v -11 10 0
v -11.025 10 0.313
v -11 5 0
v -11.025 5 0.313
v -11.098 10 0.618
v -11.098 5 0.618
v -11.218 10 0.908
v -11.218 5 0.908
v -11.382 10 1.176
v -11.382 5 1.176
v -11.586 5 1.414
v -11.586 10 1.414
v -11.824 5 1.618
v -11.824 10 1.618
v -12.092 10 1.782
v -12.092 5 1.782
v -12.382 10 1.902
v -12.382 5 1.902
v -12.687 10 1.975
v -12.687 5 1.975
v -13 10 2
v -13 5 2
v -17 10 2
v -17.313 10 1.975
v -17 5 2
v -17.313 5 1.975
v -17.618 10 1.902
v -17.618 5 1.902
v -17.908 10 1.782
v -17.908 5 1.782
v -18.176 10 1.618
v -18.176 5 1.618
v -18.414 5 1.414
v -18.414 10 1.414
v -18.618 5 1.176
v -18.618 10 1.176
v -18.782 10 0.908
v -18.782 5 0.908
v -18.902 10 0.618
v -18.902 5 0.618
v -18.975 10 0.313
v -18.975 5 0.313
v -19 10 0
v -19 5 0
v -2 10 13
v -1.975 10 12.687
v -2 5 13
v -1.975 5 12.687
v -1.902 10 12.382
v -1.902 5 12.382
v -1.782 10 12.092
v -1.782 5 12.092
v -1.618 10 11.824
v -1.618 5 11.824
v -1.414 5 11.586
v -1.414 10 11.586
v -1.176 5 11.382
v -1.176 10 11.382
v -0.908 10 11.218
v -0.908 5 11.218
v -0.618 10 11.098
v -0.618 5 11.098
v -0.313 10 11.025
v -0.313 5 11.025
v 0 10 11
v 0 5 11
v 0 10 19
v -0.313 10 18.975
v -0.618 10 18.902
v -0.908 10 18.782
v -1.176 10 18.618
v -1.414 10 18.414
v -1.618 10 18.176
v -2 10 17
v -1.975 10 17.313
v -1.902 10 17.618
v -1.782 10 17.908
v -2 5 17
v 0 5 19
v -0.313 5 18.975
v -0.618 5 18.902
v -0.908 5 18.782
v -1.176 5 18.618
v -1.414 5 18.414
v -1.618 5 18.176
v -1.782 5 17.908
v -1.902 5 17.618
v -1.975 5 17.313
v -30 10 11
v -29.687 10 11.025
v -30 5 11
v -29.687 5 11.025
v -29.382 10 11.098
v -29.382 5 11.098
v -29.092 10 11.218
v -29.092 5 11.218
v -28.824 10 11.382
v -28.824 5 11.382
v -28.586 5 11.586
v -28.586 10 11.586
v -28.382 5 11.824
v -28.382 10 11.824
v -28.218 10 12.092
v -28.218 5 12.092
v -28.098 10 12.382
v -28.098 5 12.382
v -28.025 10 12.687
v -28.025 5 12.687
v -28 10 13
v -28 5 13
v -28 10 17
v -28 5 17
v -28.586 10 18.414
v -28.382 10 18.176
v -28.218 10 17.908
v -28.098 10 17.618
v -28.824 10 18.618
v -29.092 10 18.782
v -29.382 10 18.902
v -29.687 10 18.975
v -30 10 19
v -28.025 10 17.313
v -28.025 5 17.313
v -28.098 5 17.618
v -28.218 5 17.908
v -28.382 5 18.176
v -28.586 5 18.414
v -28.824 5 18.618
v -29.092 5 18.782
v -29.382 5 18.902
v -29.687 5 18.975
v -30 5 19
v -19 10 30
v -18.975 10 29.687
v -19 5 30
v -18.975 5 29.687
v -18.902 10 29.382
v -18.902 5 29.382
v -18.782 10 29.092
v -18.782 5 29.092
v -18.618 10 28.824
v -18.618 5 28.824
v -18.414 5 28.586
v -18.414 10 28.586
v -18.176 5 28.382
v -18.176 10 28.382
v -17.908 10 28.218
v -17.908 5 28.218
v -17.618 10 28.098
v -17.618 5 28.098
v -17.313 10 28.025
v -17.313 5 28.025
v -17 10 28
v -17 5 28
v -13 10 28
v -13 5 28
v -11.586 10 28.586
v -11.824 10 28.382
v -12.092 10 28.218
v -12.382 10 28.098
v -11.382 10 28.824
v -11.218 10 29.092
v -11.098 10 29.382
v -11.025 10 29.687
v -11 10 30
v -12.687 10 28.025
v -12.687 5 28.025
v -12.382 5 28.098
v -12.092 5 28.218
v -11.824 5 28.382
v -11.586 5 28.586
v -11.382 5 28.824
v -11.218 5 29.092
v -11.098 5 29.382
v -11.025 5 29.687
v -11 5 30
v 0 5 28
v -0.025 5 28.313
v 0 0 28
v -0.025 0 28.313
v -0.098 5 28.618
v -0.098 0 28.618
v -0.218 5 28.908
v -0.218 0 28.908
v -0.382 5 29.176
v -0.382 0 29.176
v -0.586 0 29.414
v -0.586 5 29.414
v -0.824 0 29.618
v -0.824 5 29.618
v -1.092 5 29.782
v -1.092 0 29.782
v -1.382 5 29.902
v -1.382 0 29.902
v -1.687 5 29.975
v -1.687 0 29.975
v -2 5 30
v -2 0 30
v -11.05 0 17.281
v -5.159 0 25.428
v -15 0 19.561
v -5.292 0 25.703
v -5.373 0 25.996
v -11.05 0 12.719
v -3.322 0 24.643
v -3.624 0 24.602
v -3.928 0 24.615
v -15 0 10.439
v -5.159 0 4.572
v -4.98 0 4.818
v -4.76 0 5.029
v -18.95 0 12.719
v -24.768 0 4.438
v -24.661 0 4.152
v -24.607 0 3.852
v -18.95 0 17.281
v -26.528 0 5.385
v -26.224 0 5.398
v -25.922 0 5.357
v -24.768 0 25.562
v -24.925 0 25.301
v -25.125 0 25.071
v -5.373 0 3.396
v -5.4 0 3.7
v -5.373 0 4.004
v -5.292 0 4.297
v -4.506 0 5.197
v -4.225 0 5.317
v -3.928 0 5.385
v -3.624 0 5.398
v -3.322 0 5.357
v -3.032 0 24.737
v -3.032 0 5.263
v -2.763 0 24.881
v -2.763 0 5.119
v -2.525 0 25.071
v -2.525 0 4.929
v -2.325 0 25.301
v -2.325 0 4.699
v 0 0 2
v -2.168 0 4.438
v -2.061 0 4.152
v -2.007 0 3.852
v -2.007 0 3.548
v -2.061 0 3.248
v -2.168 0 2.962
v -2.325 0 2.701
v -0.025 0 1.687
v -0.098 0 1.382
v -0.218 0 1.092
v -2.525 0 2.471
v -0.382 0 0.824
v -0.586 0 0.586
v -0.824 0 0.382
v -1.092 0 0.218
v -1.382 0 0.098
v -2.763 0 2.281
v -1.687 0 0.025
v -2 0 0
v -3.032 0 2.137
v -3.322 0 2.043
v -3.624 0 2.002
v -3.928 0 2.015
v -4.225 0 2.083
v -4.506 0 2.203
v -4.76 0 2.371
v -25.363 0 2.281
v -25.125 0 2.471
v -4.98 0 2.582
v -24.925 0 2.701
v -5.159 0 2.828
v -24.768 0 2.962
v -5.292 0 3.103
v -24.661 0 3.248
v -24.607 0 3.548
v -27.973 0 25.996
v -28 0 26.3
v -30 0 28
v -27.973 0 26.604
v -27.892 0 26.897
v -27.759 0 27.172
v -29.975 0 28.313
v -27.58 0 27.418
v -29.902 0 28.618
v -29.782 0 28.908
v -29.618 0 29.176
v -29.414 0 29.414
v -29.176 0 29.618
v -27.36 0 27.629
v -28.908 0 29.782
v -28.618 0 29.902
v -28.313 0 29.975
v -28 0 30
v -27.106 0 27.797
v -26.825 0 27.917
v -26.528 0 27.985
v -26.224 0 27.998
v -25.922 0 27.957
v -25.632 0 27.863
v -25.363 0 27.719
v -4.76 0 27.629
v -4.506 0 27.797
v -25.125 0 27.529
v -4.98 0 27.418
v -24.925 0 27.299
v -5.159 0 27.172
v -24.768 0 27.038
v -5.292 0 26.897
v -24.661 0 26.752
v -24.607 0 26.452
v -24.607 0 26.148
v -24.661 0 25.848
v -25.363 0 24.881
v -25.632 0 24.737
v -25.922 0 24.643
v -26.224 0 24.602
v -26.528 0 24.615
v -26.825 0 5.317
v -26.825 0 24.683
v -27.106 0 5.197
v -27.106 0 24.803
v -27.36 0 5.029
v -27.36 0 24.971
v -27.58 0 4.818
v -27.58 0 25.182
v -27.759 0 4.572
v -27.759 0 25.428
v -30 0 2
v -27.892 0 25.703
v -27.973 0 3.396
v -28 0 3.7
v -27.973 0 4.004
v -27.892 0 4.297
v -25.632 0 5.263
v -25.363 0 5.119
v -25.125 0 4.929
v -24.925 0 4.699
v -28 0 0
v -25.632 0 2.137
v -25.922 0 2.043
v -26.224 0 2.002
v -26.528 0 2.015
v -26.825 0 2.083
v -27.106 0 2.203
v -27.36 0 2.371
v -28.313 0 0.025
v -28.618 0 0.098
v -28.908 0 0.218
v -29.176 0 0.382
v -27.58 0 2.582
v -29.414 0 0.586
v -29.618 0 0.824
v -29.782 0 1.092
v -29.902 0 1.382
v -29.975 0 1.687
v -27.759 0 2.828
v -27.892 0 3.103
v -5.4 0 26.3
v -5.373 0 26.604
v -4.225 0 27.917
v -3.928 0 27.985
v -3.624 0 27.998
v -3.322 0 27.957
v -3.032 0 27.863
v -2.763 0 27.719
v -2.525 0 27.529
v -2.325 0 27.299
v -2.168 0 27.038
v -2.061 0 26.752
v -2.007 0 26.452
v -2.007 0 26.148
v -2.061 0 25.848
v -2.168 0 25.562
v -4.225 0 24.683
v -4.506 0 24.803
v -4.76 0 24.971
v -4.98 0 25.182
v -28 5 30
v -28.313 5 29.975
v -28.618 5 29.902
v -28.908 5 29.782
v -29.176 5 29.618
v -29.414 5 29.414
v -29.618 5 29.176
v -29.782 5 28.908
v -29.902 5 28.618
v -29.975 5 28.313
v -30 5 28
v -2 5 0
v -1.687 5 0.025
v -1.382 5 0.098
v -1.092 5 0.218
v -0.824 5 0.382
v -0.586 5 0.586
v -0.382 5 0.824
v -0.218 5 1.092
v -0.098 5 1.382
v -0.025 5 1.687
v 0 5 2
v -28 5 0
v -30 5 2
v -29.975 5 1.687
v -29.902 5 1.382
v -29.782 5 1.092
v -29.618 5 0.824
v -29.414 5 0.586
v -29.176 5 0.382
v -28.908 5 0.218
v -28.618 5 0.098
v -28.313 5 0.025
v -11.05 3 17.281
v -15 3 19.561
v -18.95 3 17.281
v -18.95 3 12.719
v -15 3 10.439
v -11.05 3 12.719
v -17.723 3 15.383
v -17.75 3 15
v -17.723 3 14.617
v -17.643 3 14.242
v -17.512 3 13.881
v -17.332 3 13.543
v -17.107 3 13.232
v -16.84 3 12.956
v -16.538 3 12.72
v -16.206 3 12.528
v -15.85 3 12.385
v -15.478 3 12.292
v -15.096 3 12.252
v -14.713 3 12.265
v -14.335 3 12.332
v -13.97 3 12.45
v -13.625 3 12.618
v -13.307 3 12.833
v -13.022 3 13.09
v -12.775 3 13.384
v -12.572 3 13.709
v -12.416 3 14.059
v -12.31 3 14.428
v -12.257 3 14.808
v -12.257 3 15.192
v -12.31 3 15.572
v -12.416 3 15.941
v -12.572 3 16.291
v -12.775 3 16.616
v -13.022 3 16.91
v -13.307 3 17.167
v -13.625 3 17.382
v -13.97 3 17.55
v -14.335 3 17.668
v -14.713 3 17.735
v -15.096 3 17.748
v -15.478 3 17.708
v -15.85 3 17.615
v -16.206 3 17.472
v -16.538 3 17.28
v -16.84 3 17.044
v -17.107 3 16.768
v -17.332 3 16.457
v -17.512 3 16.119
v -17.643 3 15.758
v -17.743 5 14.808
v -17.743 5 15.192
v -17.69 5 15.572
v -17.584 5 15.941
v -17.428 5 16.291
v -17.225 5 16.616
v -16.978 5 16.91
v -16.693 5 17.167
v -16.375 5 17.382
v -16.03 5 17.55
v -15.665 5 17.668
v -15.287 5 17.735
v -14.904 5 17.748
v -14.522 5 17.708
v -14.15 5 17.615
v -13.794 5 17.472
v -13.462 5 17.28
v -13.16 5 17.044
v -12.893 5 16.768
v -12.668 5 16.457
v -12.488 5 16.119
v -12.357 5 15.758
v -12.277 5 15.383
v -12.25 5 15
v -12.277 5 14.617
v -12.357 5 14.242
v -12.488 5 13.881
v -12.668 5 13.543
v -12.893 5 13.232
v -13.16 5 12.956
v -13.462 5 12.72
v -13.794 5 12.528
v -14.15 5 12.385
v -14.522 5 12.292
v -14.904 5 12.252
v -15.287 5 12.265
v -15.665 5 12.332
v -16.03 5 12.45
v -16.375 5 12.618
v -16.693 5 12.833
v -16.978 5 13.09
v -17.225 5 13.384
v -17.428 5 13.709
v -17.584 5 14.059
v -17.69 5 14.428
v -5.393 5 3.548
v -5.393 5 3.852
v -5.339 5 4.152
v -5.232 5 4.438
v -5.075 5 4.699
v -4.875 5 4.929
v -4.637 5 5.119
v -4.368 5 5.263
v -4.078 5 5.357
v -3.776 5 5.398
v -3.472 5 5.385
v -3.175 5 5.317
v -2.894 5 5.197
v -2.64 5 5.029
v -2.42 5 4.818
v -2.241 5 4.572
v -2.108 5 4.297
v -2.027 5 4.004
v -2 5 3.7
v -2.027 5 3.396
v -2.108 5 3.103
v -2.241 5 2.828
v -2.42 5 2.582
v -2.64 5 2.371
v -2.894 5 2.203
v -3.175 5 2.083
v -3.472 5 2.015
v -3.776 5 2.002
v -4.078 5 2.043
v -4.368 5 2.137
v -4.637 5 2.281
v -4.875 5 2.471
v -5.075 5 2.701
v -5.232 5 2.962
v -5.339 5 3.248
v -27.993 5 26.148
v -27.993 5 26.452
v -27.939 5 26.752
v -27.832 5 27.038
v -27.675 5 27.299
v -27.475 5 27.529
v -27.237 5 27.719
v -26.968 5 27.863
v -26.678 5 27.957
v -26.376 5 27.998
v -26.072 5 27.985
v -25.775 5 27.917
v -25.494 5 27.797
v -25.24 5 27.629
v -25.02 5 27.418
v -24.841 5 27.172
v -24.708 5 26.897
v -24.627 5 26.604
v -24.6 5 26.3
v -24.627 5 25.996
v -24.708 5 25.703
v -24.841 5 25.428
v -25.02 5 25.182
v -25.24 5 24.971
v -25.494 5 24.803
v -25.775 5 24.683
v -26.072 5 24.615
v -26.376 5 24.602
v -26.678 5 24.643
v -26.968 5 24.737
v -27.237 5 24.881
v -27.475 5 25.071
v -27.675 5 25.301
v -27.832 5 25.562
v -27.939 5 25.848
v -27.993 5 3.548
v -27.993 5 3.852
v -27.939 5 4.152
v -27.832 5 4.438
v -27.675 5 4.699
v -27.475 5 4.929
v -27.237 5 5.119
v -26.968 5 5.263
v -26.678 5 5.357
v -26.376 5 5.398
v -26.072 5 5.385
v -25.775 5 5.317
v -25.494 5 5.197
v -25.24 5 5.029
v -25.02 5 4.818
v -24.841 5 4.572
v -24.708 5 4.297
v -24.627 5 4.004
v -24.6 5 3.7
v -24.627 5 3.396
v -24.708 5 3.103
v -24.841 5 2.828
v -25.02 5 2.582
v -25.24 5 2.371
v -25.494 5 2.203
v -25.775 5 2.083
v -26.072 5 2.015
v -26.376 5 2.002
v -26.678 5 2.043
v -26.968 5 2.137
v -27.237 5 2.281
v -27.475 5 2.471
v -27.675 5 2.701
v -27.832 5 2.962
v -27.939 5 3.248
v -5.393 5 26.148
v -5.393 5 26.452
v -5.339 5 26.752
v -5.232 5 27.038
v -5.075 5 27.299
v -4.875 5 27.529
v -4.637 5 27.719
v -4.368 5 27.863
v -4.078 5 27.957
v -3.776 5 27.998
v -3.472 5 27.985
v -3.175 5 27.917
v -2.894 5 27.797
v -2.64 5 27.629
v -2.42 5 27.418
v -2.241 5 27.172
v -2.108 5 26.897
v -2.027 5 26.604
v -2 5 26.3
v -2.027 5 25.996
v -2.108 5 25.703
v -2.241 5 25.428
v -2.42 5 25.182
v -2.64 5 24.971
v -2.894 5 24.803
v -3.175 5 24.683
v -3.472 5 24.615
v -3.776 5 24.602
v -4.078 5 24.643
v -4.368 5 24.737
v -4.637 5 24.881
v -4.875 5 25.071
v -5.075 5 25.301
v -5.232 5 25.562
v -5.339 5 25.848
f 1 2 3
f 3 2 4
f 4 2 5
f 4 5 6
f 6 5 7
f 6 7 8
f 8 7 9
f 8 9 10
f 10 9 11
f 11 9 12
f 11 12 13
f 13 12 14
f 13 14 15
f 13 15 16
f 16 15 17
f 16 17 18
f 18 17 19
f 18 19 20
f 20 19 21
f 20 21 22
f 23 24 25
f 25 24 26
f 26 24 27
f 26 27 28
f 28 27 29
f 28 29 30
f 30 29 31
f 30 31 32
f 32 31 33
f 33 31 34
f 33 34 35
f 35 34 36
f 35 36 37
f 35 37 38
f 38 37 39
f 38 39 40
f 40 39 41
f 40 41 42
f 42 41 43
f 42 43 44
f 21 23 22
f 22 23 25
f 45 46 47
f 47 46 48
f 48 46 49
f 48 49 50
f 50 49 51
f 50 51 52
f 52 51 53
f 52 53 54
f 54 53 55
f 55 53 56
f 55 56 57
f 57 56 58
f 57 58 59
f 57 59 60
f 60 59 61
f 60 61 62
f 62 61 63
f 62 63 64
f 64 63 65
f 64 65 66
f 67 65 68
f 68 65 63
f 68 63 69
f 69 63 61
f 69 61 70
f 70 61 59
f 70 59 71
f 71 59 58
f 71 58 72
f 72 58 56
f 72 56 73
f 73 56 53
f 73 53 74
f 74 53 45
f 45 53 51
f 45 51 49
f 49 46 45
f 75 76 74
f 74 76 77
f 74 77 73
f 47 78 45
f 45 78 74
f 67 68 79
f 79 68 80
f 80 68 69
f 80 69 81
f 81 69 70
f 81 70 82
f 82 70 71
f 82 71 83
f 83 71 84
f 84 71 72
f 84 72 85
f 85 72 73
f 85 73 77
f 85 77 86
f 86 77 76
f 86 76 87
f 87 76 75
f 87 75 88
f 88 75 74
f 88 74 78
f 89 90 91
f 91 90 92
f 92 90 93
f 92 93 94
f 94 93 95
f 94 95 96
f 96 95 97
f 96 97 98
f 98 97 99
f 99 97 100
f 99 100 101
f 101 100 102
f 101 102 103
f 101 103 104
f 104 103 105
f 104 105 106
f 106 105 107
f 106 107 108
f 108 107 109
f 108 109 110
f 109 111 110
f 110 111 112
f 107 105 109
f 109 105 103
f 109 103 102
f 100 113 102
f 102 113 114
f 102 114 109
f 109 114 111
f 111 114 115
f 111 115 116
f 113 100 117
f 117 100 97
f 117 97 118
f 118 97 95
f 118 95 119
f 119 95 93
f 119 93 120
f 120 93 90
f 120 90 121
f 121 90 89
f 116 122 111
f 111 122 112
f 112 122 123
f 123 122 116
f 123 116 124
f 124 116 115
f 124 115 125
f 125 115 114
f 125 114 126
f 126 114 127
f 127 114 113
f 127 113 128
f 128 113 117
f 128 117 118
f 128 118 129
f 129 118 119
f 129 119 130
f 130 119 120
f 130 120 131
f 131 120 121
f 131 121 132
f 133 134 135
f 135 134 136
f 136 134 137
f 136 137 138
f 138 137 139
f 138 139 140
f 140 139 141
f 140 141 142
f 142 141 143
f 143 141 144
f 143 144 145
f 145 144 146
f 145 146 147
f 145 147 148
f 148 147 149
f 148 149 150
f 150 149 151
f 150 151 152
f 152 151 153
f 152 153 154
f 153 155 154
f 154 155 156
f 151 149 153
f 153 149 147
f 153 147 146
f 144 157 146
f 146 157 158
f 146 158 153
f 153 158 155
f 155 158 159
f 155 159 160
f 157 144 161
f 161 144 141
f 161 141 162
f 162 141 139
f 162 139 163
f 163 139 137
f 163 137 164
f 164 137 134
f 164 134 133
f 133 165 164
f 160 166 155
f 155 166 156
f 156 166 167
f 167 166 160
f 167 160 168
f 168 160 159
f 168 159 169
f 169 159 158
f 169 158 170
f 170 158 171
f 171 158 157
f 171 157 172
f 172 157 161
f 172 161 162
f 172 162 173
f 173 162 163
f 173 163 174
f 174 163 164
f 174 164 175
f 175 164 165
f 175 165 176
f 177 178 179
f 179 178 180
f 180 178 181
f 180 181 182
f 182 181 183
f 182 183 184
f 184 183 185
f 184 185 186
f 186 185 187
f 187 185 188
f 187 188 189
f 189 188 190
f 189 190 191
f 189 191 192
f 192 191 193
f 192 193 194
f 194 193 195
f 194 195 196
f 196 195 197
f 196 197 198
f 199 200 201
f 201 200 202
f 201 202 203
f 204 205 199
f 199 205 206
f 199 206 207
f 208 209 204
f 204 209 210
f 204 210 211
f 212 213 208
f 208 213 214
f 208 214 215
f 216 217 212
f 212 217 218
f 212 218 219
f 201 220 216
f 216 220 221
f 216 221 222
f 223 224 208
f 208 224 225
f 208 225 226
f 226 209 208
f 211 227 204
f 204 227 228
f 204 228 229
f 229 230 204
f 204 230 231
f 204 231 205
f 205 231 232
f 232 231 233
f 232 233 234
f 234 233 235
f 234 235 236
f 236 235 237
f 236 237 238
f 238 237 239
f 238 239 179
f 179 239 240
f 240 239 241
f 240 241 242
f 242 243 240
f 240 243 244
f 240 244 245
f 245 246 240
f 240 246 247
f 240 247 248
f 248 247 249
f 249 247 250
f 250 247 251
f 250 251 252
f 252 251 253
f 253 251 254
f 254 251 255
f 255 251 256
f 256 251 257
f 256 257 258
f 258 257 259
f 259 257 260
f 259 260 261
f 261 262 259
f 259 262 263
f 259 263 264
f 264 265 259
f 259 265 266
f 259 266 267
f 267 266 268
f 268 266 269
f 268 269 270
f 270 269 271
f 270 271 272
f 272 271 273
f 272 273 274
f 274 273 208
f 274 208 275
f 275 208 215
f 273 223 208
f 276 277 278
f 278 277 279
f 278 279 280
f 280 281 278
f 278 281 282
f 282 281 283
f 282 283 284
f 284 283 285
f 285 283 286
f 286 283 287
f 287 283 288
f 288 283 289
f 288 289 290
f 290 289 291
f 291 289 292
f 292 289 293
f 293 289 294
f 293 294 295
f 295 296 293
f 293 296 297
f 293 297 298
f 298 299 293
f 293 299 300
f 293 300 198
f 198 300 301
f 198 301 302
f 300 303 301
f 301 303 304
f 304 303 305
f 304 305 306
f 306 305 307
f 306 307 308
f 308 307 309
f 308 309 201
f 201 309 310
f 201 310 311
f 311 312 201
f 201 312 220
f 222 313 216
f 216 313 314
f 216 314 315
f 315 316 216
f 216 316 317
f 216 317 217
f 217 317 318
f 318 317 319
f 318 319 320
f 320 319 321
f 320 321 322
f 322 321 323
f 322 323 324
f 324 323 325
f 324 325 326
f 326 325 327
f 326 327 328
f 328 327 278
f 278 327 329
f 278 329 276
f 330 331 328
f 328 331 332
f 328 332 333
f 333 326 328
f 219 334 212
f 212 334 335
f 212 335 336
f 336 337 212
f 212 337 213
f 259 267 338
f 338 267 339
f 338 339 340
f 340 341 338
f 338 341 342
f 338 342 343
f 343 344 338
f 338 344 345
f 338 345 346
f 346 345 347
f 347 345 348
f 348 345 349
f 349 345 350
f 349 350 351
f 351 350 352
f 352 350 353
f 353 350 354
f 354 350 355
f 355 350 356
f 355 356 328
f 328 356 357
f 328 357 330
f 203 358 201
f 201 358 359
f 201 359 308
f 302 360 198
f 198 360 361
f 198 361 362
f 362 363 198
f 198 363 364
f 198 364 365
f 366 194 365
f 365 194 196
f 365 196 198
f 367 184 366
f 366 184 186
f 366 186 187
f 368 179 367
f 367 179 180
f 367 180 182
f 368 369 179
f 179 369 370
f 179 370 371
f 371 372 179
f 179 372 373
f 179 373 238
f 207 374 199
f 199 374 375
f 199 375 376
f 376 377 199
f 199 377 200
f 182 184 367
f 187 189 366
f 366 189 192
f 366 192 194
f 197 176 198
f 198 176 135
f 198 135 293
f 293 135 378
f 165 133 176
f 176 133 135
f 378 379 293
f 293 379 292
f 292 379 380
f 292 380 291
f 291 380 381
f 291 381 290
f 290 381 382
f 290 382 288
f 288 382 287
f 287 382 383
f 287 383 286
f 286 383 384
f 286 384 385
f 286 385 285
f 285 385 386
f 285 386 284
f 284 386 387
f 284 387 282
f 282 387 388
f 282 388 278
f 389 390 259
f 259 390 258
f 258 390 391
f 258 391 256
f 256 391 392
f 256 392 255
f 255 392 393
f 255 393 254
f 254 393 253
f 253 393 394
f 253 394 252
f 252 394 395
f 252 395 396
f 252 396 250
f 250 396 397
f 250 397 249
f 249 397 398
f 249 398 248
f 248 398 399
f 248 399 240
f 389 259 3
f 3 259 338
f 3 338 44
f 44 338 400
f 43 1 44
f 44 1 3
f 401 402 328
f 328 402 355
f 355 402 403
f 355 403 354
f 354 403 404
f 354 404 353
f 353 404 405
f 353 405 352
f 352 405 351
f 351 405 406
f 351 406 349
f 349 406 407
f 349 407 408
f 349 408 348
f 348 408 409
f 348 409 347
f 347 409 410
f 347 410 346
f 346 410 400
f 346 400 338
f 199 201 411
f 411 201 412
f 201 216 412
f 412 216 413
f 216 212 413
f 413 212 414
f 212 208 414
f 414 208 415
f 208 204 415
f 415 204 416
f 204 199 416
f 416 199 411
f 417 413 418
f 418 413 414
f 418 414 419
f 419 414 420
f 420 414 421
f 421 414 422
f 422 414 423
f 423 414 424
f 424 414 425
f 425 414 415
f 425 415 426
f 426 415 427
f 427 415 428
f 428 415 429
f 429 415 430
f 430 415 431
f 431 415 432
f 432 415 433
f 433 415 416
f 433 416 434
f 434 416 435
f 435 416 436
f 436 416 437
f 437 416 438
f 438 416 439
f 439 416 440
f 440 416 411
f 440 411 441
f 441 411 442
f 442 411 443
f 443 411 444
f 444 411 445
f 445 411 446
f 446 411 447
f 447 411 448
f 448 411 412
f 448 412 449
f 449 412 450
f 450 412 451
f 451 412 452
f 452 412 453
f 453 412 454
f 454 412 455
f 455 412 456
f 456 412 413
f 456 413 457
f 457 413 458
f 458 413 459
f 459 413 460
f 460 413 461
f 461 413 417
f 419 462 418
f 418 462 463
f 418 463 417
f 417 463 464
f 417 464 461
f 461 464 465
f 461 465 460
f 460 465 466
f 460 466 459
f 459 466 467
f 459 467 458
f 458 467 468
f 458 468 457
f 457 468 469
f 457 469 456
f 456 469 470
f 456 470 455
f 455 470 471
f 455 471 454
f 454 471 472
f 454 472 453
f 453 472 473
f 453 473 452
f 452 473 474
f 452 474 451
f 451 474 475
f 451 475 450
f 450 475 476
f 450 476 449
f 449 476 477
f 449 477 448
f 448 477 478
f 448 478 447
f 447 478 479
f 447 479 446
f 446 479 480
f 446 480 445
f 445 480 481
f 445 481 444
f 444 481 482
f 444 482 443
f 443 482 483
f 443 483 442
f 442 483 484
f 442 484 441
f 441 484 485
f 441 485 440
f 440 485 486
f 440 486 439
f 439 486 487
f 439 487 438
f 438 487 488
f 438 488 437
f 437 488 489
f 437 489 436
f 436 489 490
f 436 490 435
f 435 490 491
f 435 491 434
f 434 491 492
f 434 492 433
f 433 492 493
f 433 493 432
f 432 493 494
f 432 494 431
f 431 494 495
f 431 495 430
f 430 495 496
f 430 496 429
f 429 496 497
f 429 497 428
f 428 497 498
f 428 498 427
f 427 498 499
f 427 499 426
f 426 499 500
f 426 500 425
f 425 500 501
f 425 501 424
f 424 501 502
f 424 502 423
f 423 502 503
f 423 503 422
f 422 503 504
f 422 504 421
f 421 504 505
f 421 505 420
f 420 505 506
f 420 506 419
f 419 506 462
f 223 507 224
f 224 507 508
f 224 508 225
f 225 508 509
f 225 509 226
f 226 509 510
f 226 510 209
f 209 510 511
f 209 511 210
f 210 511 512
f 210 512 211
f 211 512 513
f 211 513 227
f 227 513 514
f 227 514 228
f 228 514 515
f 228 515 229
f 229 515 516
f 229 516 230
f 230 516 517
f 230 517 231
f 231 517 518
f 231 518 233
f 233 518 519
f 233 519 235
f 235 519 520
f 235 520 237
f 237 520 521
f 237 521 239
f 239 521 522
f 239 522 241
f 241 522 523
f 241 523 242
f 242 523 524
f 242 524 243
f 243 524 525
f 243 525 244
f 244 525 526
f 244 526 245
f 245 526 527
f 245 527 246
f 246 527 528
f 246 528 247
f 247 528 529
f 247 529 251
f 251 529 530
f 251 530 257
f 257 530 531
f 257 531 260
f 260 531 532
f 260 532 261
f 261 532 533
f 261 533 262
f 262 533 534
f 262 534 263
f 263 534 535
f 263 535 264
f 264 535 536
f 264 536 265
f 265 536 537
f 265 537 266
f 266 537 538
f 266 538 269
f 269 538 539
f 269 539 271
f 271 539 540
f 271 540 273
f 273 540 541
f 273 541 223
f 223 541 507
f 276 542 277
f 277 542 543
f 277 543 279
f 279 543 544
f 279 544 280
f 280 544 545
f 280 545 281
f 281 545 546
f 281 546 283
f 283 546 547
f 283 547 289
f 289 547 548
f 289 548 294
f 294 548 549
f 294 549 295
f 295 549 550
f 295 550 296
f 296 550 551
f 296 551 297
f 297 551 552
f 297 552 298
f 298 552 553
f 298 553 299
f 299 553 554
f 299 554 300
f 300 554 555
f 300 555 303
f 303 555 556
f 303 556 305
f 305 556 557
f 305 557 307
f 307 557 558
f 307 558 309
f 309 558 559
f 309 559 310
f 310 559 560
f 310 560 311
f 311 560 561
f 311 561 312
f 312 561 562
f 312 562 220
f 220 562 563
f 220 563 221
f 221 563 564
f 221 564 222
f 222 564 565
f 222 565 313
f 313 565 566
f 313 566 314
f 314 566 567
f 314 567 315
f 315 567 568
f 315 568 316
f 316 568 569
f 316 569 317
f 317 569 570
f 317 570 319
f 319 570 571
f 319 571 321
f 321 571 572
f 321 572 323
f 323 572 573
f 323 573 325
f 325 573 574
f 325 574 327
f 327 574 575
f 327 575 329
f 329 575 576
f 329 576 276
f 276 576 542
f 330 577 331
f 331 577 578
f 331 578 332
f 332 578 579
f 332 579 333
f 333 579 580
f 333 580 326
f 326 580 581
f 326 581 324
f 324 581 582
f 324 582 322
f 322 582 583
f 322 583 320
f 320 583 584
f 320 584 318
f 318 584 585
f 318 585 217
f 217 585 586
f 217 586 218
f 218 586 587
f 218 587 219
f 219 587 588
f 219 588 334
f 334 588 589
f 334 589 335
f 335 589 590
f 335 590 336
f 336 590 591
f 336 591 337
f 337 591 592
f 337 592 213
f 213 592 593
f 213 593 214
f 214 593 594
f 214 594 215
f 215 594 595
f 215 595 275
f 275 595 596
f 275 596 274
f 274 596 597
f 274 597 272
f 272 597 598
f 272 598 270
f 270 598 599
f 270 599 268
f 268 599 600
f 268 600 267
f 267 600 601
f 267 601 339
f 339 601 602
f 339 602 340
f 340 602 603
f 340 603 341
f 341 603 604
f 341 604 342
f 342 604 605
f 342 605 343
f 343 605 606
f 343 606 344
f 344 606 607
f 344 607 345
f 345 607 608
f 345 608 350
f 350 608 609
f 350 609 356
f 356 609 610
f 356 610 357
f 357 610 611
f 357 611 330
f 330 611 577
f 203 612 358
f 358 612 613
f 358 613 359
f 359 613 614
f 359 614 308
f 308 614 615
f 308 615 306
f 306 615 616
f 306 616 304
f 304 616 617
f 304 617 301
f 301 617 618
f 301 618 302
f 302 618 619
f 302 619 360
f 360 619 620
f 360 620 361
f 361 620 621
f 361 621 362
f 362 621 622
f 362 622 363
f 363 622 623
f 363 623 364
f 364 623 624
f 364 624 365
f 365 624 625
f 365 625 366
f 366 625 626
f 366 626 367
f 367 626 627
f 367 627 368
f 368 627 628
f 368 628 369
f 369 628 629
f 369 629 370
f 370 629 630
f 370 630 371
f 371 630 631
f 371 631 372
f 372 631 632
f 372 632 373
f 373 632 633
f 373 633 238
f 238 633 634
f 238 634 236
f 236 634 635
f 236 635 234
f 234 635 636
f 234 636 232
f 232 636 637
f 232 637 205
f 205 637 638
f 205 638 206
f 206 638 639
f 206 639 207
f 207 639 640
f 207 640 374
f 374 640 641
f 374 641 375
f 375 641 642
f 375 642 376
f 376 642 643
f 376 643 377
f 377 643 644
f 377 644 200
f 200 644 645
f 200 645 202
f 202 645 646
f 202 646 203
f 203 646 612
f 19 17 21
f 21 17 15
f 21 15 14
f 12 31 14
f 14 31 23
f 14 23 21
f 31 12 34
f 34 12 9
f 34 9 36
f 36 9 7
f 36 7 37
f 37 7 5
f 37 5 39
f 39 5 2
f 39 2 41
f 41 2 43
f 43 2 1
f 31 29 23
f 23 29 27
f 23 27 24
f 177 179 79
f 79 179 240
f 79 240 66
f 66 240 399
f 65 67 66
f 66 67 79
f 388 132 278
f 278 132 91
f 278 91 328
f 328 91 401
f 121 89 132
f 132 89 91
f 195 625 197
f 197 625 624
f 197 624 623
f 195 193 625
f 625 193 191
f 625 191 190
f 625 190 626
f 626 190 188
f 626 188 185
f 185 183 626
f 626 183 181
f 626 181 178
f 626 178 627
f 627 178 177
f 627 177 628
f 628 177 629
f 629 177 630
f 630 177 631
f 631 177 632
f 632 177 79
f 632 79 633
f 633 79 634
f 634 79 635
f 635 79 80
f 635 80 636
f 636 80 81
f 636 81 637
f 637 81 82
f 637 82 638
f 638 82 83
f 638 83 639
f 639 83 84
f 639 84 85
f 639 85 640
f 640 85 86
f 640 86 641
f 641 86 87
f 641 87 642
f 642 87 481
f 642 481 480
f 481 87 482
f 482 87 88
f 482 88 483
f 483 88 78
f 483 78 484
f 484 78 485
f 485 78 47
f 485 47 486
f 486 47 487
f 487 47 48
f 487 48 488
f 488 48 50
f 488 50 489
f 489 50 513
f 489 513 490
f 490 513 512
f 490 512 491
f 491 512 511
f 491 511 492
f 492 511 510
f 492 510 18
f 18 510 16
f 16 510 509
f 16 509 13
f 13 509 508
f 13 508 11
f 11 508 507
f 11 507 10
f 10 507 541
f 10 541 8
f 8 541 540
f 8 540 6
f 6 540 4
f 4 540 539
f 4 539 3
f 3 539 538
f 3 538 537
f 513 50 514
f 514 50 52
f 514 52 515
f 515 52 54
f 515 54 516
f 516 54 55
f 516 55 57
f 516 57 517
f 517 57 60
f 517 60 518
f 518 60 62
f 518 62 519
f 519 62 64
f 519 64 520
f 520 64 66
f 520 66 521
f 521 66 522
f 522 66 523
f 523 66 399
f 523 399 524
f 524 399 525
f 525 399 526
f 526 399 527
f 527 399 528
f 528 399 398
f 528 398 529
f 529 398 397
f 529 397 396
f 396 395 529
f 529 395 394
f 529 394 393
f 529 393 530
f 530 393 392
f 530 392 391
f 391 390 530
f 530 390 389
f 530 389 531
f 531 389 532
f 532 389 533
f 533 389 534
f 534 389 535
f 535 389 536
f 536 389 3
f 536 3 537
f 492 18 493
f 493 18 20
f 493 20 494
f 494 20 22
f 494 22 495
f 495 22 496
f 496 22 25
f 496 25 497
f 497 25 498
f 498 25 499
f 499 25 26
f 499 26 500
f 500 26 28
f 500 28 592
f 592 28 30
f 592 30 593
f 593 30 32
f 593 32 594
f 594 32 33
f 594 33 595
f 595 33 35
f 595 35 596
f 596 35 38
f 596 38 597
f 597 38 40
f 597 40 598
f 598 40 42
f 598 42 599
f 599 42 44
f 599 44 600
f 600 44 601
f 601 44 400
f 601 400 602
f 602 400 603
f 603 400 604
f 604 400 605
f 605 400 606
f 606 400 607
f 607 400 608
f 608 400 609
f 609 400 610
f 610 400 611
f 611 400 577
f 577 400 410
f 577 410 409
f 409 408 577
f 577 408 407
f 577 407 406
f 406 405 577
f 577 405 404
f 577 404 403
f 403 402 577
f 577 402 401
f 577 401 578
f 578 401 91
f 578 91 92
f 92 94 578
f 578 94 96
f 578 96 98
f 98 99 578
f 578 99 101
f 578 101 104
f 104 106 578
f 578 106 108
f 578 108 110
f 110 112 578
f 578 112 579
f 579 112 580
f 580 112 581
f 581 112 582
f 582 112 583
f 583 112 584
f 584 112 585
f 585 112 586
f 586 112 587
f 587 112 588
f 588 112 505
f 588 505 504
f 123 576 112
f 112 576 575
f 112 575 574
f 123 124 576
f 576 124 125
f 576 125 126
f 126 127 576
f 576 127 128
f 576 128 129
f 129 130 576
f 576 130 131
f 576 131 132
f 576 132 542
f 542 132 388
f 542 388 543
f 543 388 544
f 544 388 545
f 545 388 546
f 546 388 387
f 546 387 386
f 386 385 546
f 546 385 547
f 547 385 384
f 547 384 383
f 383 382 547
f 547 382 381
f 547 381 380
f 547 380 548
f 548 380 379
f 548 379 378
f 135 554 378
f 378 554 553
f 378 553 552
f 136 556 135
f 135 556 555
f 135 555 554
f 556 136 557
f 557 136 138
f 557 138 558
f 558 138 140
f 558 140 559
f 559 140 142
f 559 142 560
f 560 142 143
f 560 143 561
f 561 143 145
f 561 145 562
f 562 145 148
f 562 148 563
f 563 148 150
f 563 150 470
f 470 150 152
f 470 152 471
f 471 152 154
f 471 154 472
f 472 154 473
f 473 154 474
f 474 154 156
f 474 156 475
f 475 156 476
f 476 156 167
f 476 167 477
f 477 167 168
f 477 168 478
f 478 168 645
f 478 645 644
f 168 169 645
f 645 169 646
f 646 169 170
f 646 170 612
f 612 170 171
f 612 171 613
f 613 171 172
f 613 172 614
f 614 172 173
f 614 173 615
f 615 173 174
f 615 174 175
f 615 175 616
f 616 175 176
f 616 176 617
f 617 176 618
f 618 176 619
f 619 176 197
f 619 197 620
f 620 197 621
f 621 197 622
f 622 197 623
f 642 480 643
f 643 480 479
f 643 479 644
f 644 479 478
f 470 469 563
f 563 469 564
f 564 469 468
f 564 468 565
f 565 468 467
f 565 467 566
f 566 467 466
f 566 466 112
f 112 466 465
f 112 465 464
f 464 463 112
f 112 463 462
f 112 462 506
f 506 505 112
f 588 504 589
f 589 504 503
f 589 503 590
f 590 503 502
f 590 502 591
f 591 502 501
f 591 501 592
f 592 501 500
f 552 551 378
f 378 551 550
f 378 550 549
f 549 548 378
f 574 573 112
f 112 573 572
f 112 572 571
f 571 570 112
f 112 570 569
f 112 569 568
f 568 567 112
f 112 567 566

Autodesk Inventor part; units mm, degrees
ref_plane "YZ Plane" through (0, 0, 0) normal (1, 0, 0) x (0, 1, 0)
ref_plane "XZ Plane" through (0, 0, 0) normal (0, 1, 0) x (-1, 0, 0)
ref_plane "XY Plane" through (0, 0, 0) normal (0, 0, 1) x (1, 0, 0)
sketch "Skizze1" plane through (0, 0, 0) normal (0, 1, 0) x (-1, 0, 0)
  line L0 (0, 0) -> (30, 0)
  line L1 (30, 0) -> (30, 30)
  line L2 (30, 30) -> (0, 30)
  line L3 (0, 30) -> (0, 0)
  dimension "d0" = 30
  dimension "d1" = 30
extrude "Extrusion1" add sketch "Skizze1" along normal blind 5
sketch "Skizze2" plane through (0, 5, 0) normal (0, 1, 0) x (1, 0, 0)
  line L0 (-30, -19) -> (-28, -19)
  line L1 (-28, -19) -> (-28, -11)
  line L2 (-28, -11) -> (-30, -11)
  line L3 (-30, -11) -> (-30, -19)
  line L4 (-19, -2) -> (-11, -2)
  line L5 (-11, -2) -> (-11, 0)
  line L6 (-11, 0) -> (-19, 0)
  line L7 (-19, 0) -> (-19, -2)
  line L8 (-2, -19) -> (0, -19)
  line L9 (0, -19) -> (0, -11)
  line L10 (0, -11) -> (-2, -11)
  line L11 (-2, -11) -> (-2, -19)
  line L12 (-19, -30) -> (-11, -30)
  line L13 (-11, -30) -> (-11, -28)
  line L14 (-11, -28) -> (-19, -28)
  line L15 (-19, -28) -> (-19, -30)
  line L16 (-30, 0) -> (-30, -30) projected
  line L17 (0, 0) -> (-30, 0) projected
  line L18 (0, -30) -> (0, 0) projected
  line L19 (-30, -30) -> (0, -30) projected
  dimension "d4" = 0
  dimension "d5" = 0
  dimension "d6" = 0
  dimension "d7" = 0
  dimension "d8" = 2
  dimension "d9" = 8
  dimension "d10" = 11
  dimension "d11" = 11
  dimension "d12" = 11
extrude "Extrusion2" add sketch "Skizze2" along normal blind 5 contours L3 L2 L1 L0 | L15 L14 L13 L12 | L6 L5 L4 L7 | L8 L11 L10 L9
sketch "Skizze3" plane through (0, 5, 0) normal (0, 1, 0) x (1, 0, 0)
  line L0 (0, -30) -> (0, -19) projected
  line L1 (-11, -30) -> (0, -30) projected
  line L2 (0, 0) -> (-11, 0) projected
  line L3 (0, -11) -> (0, 0) projected
  line L4 (-30, -19) -> (-30, -30) projected
  line L5 (-30, -30) -> (-19, -30) projected
  line L6 (-30, 0) -> (-30, -11) projected
  line L7 (-19, 0) -> (-30, 0) projected
  point P0 (-26.3, -26.3)
  point P1 (-26.3, -3.7)
  point P2 (-3.7, -3.7)
  point P3 (-3.7, -26.3)
  dimension "d15" = 3.7
  dimension "d16" = 3.7
  dimension "d17" = 3.7
  dimension "d18" = 3.7
  dimension "d19" = 3.7
  dimension "d20" = 3.7
  dimension "d21" = 3.7
  dimension "d22" = 3.7
hole "Bohrung1" at (-26.3, 5, 26.3) at (-26.3, 5, 3.7) at (-3.7, 5, 3.7) at (-3.7, 5, 26.3) direction (0, -1, 0) diameter 3.4 end through all
sketch "Skizze4" plane through (0, 5, 0) normal (0, 1, 0) x (1, 0, 0)
  line L0 (-19, 0) -> (-30, 0) projected
  line L1 (0, -11) -> (0, 0) projected
  point P0 (-15, -15)
  dimension "d30" = 15
  dimension "d31" = 15
hole "Bohrung2" at (-15, 5, 15) direction (0, -1, 0) diameter 5.5 end through all clearance for "Flachkopfsenkschraube DIN EN ISO 2009" size "M5" standard "DIN"
sketch "Skizze6" plane through (0, 0, 0) normal (0, -1, 0) x (1, 0, 0)
  line L0 (0, 0) -> (-30, 0) projected
  line L1 (0, 30) -> (0, 0) projected
  line L2 (-11.05, 17.2805) -> (-11.05, 12.7195)
  line L3 (-11.05, 12.7195) -> (-15, 10.4389)
  line L4 (-15, 10.4389) -> (-18.95, 12.7195)
  line L5 (-18.95, 12.7195) -> (-18.95, 17.2805)
  line L6 (-18.95, 17.2805) -> (-15, 19.5611)
  line L7 (-15, 19.5611) -> (-11.05, 17.2805)
  point P0 (-15, 15)
  point P1 (-15, 15)
  dimension "d41" = 15
  dimension "d42" = 15
  dimension "d43" = 7.9
extrude "Extrusion3" cut sketch "Skizze6" against normal blind 3
fillet "Rundung1" radius 2 12 edges at (-30, 2.5, 0) (0, 2.5, 0) (-30, 2.5, 30) (0, 2.5, 30) (-11, 7.5, 28) (-19, 7.5, 28) (-28, 7.5, 19) (-28, 7.5, 11) (-2, 7.5, 19) (-2, 7.5, 11) (-19, 7.5, 2) (-11, 7.5, 2)
equation "\"d17\" = d16"
equation "\"d18\" = d15"
equation "\"d19\" = d15"
equation "\"d20\" = d16"
equation "\"d21\" = d15"
equation "\"d22\" = d16"
properties part number "feet_screw_adapter"
